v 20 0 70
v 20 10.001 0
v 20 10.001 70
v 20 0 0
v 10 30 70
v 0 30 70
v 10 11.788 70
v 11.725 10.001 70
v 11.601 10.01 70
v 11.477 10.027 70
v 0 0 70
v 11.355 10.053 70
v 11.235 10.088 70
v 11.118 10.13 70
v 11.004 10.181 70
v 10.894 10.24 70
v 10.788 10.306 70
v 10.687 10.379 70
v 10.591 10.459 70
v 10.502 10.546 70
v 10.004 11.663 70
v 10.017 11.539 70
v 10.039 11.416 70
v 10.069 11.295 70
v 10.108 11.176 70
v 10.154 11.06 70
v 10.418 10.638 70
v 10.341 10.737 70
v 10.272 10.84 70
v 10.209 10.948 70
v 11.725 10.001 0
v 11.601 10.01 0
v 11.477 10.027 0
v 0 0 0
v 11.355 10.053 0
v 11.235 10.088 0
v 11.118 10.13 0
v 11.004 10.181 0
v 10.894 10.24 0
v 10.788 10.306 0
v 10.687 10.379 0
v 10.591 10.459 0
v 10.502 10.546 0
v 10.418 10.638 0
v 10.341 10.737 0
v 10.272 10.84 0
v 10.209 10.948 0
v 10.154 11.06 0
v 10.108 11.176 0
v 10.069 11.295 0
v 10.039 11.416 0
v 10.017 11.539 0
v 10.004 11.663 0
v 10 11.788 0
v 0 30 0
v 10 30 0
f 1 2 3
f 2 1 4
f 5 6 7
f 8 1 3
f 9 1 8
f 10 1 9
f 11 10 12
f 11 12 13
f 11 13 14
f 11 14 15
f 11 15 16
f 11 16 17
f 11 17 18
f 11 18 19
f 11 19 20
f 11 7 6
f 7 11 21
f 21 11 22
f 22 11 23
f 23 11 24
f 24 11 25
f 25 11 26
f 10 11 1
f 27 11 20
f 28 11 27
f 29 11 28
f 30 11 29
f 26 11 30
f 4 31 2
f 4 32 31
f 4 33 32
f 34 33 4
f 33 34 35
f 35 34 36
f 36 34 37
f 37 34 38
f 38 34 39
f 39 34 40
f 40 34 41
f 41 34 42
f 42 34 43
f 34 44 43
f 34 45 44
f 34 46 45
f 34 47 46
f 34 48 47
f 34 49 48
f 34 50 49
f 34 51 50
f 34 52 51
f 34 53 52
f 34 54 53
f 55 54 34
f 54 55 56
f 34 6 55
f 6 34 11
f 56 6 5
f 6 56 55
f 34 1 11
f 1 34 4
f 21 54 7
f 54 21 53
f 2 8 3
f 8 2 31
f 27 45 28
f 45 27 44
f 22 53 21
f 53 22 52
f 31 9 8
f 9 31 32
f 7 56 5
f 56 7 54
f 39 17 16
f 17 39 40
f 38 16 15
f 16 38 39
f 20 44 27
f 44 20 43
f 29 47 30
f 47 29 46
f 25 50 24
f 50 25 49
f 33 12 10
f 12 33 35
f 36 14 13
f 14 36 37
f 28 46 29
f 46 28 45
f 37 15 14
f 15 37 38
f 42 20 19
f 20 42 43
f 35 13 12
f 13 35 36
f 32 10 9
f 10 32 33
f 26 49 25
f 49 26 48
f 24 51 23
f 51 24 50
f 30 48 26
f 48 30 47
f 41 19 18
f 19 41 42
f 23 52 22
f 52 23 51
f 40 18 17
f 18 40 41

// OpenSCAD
difference() {
    cube([20, 30, 70]);

    roundover = 0.2 + 1.5875;

    translate([10, 10, 0]) 
    hull() {
        translate([roundover, roundover, 0])
        cylinder(r = roundover, h = 70, $fn = 90);
        translate([20 - roundover, roundover, 0])
            cylinder(r = roundover, h = 70, $fn = 90);
        translate([roundover, 30 - roundover, 0])
            cylinder(r = roundover, h = 70, $fn = 90);
        translate([20 - roundover, 30 - roundover, 0])
            cylinder(r = roundover, h = 70, $fn = 90);
    }
}
